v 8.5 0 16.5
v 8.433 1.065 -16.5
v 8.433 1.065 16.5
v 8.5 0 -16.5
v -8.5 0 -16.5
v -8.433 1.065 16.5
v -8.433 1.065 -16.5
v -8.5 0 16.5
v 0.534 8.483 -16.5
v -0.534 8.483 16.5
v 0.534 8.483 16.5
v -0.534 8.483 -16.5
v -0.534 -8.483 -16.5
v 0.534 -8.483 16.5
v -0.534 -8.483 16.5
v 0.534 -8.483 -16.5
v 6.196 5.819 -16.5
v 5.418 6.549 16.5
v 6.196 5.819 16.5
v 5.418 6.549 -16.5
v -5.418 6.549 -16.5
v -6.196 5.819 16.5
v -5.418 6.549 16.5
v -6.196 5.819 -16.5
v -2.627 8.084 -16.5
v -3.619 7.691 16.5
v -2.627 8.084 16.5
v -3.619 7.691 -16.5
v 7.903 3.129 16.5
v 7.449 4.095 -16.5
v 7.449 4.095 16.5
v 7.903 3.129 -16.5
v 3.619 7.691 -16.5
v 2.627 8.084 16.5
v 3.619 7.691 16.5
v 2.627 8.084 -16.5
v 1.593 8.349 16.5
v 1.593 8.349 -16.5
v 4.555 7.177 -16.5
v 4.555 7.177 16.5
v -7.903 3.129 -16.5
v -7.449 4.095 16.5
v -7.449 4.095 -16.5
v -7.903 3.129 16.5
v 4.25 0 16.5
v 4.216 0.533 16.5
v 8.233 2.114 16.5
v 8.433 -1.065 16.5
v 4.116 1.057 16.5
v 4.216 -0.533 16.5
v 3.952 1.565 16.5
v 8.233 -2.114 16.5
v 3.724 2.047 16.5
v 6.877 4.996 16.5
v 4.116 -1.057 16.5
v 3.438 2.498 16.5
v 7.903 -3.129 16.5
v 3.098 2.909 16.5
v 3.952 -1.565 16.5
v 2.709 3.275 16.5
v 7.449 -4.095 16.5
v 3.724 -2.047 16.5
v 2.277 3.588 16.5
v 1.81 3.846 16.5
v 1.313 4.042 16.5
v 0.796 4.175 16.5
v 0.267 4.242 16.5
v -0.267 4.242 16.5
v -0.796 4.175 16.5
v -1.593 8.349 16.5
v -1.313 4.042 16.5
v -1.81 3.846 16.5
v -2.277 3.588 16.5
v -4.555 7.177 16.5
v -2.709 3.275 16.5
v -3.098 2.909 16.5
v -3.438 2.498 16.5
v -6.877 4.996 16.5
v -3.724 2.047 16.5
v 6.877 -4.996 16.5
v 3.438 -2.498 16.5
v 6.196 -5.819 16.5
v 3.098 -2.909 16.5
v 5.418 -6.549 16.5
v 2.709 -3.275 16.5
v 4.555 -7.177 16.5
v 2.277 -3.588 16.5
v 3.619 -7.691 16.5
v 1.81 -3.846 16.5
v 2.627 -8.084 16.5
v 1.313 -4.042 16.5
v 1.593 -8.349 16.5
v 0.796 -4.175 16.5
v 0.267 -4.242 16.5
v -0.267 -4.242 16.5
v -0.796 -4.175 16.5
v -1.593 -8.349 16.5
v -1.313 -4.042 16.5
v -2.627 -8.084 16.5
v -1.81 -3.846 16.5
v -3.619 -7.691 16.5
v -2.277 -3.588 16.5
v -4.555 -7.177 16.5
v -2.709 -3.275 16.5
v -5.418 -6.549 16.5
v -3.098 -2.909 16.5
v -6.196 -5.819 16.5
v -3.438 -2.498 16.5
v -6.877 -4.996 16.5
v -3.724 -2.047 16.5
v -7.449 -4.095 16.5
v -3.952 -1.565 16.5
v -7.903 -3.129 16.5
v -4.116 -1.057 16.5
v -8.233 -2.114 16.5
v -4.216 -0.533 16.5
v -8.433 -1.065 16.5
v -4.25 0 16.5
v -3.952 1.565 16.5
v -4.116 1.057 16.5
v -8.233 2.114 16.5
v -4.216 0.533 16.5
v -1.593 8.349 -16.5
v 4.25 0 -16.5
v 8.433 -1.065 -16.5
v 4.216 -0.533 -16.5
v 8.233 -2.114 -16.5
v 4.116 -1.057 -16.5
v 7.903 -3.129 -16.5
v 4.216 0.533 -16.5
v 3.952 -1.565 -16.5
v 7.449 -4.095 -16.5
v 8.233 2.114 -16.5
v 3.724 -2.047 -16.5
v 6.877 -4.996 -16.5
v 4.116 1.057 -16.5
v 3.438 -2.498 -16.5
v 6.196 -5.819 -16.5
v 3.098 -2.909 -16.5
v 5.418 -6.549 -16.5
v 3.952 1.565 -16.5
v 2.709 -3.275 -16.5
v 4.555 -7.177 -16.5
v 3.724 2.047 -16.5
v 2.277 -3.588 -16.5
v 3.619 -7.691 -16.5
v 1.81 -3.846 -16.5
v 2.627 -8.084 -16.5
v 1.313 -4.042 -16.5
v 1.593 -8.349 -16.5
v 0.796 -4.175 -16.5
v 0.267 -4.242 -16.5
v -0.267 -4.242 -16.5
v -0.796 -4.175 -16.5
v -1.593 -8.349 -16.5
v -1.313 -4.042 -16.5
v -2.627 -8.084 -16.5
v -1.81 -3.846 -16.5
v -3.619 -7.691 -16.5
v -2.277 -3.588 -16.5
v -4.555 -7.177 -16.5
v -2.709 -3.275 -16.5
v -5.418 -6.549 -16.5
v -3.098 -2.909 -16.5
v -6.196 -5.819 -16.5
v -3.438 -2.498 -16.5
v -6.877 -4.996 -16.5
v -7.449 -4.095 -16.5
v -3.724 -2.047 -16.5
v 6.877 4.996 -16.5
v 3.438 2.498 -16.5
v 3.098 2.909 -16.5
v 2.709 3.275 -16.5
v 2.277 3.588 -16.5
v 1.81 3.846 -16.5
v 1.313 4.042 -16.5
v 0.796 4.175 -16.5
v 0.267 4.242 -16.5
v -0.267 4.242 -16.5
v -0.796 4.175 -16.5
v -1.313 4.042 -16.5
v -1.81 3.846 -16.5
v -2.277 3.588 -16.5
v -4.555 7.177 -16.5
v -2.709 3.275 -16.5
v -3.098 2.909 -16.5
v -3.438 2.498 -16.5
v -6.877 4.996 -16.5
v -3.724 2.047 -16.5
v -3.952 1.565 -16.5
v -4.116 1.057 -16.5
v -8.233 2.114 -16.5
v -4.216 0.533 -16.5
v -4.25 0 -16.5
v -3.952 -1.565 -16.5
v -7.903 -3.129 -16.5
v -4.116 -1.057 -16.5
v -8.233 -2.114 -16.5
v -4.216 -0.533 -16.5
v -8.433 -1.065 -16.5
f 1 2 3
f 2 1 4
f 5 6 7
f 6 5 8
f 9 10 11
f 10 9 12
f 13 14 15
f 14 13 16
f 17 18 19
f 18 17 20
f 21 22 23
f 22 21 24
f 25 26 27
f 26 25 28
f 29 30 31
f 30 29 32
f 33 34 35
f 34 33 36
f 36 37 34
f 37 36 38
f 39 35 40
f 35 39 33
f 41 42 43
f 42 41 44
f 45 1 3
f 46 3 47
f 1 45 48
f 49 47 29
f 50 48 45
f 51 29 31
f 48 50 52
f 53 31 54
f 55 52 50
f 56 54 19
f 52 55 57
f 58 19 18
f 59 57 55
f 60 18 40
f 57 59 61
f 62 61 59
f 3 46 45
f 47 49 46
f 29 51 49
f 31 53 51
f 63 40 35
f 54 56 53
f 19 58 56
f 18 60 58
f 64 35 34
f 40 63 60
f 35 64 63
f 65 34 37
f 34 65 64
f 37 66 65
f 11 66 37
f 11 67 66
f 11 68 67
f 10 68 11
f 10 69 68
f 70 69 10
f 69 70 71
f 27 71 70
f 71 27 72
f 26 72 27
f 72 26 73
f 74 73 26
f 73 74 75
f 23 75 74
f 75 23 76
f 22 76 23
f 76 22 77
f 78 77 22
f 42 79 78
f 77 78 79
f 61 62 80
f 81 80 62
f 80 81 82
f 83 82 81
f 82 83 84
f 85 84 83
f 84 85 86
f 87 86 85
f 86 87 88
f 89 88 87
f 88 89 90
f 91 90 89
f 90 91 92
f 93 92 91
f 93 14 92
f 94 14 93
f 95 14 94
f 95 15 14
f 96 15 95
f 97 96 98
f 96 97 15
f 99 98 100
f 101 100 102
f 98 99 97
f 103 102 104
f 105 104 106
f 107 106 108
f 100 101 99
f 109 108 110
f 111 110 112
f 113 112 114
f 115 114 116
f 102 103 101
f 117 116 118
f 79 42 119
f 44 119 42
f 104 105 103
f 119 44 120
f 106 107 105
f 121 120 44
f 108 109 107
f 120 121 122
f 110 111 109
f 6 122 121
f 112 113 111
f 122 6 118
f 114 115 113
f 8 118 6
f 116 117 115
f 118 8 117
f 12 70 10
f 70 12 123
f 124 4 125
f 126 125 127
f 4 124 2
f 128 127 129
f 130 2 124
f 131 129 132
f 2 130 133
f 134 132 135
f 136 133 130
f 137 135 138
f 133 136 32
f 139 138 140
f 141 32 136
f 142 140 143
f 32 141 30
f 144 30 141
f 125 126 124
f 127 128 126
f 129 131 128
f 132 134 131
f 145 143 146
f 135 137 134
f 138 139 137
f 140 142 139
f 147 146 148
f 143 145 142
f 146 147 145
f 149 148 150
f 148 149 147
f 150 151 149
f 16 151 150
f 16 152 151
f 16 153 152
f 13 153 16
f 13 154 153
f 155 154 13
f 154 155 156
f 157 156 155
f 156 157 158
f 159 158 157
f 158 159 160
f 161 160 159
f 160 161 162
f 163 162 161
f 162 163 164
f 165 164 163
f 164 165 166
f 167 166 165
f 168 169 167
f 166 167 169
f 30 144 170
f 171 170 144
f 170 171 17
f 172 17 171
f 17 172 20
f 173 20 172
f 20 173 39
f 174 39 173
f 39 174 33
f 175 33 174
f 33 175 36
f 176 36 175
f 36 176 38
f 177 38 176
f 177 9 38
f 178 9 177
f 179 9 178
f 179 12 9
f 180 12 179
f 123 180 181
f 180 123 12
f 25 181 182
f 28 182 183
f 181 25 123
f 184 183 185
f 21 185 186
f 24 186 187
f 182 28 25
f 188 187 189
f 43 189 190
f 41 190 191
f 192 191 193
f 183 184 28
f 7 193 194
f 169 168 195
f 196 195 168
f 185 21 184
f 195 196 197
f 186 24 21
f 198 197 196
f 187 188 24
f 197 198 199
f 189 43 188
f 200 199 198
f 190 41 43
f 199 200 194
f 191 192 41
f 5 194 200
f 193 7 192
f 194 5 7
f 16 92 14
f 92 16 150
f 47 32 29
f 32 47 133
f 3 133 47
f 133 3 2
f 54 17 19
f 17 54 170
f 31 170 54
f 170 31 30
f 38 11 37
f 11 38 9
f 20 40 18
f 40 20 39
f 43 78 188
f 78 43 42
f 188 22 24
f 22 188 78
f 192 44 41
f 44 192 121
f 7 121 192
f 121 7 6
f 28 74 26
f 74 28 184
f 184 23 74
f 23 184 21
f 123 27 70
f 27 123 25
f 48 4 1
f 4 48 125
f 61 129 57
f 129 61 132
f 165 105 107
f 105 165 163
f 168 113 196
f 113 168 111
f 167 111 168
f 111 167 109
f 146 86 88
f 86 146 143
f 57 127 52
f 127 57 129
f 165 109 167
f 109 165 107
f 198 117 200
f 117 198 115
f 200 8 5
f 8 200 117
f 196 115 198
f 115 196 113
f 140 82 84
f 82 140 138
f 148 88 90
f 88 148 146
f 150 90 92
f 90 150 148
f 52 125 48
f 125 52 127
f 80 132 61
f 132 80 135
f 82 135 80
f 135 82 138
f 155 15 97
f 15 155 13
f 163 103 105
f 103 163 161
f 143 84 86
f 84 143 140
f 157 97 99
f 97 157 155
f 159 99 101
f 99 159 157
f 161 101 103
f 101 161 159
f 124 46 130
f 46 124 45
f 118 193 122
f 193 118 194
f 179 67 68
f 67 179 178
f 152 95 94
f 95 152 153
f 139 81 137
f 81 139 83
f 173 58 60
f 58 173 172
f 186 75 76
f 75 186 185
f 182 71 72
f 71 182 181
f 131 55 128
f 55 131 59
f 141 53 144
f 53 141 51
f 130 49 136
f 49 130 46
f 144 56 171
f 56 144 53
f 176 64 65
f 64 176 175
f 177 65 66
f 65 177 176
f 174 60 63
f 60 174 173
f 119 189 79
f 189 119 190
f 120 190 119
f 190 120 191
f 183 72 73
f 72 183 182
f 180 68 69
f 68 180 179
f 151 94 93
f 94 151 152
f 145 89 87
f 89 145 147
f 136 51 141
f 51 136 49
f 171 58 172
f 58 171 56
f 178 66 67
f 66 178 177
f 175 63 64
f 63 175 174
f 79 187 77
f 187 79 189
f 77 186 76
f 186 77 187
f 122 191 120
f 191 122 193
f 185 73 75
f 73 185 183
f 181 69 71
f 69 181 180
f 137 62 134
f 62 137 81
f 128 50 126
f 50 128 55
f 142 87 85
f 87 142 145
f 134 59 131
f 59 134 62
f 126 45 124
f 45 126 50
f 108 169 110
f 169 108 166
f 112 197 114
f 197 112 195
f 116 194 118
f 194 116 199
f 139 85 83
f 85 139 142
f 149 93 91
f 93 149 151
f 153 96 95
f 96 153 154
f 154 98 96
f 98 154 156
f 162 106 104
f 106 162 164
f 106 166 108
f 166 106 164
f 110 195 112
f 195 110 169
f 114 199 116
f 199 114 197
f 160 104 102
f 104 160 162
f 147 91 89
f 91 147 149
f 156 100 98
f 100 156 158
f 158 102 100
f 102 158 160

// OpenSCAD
$fn = 50;


difference() {
	union() {
		translate(v = [0, 0, -16.5000000000]) {
			cylinder(h = 33, r = 8.5000000000);
		}
	}
	union() {
		translate(v = [0, 0, -100.0000000000]) {
			cylinder(h = 200, r = 4.2500000000);
		}
	}
}
